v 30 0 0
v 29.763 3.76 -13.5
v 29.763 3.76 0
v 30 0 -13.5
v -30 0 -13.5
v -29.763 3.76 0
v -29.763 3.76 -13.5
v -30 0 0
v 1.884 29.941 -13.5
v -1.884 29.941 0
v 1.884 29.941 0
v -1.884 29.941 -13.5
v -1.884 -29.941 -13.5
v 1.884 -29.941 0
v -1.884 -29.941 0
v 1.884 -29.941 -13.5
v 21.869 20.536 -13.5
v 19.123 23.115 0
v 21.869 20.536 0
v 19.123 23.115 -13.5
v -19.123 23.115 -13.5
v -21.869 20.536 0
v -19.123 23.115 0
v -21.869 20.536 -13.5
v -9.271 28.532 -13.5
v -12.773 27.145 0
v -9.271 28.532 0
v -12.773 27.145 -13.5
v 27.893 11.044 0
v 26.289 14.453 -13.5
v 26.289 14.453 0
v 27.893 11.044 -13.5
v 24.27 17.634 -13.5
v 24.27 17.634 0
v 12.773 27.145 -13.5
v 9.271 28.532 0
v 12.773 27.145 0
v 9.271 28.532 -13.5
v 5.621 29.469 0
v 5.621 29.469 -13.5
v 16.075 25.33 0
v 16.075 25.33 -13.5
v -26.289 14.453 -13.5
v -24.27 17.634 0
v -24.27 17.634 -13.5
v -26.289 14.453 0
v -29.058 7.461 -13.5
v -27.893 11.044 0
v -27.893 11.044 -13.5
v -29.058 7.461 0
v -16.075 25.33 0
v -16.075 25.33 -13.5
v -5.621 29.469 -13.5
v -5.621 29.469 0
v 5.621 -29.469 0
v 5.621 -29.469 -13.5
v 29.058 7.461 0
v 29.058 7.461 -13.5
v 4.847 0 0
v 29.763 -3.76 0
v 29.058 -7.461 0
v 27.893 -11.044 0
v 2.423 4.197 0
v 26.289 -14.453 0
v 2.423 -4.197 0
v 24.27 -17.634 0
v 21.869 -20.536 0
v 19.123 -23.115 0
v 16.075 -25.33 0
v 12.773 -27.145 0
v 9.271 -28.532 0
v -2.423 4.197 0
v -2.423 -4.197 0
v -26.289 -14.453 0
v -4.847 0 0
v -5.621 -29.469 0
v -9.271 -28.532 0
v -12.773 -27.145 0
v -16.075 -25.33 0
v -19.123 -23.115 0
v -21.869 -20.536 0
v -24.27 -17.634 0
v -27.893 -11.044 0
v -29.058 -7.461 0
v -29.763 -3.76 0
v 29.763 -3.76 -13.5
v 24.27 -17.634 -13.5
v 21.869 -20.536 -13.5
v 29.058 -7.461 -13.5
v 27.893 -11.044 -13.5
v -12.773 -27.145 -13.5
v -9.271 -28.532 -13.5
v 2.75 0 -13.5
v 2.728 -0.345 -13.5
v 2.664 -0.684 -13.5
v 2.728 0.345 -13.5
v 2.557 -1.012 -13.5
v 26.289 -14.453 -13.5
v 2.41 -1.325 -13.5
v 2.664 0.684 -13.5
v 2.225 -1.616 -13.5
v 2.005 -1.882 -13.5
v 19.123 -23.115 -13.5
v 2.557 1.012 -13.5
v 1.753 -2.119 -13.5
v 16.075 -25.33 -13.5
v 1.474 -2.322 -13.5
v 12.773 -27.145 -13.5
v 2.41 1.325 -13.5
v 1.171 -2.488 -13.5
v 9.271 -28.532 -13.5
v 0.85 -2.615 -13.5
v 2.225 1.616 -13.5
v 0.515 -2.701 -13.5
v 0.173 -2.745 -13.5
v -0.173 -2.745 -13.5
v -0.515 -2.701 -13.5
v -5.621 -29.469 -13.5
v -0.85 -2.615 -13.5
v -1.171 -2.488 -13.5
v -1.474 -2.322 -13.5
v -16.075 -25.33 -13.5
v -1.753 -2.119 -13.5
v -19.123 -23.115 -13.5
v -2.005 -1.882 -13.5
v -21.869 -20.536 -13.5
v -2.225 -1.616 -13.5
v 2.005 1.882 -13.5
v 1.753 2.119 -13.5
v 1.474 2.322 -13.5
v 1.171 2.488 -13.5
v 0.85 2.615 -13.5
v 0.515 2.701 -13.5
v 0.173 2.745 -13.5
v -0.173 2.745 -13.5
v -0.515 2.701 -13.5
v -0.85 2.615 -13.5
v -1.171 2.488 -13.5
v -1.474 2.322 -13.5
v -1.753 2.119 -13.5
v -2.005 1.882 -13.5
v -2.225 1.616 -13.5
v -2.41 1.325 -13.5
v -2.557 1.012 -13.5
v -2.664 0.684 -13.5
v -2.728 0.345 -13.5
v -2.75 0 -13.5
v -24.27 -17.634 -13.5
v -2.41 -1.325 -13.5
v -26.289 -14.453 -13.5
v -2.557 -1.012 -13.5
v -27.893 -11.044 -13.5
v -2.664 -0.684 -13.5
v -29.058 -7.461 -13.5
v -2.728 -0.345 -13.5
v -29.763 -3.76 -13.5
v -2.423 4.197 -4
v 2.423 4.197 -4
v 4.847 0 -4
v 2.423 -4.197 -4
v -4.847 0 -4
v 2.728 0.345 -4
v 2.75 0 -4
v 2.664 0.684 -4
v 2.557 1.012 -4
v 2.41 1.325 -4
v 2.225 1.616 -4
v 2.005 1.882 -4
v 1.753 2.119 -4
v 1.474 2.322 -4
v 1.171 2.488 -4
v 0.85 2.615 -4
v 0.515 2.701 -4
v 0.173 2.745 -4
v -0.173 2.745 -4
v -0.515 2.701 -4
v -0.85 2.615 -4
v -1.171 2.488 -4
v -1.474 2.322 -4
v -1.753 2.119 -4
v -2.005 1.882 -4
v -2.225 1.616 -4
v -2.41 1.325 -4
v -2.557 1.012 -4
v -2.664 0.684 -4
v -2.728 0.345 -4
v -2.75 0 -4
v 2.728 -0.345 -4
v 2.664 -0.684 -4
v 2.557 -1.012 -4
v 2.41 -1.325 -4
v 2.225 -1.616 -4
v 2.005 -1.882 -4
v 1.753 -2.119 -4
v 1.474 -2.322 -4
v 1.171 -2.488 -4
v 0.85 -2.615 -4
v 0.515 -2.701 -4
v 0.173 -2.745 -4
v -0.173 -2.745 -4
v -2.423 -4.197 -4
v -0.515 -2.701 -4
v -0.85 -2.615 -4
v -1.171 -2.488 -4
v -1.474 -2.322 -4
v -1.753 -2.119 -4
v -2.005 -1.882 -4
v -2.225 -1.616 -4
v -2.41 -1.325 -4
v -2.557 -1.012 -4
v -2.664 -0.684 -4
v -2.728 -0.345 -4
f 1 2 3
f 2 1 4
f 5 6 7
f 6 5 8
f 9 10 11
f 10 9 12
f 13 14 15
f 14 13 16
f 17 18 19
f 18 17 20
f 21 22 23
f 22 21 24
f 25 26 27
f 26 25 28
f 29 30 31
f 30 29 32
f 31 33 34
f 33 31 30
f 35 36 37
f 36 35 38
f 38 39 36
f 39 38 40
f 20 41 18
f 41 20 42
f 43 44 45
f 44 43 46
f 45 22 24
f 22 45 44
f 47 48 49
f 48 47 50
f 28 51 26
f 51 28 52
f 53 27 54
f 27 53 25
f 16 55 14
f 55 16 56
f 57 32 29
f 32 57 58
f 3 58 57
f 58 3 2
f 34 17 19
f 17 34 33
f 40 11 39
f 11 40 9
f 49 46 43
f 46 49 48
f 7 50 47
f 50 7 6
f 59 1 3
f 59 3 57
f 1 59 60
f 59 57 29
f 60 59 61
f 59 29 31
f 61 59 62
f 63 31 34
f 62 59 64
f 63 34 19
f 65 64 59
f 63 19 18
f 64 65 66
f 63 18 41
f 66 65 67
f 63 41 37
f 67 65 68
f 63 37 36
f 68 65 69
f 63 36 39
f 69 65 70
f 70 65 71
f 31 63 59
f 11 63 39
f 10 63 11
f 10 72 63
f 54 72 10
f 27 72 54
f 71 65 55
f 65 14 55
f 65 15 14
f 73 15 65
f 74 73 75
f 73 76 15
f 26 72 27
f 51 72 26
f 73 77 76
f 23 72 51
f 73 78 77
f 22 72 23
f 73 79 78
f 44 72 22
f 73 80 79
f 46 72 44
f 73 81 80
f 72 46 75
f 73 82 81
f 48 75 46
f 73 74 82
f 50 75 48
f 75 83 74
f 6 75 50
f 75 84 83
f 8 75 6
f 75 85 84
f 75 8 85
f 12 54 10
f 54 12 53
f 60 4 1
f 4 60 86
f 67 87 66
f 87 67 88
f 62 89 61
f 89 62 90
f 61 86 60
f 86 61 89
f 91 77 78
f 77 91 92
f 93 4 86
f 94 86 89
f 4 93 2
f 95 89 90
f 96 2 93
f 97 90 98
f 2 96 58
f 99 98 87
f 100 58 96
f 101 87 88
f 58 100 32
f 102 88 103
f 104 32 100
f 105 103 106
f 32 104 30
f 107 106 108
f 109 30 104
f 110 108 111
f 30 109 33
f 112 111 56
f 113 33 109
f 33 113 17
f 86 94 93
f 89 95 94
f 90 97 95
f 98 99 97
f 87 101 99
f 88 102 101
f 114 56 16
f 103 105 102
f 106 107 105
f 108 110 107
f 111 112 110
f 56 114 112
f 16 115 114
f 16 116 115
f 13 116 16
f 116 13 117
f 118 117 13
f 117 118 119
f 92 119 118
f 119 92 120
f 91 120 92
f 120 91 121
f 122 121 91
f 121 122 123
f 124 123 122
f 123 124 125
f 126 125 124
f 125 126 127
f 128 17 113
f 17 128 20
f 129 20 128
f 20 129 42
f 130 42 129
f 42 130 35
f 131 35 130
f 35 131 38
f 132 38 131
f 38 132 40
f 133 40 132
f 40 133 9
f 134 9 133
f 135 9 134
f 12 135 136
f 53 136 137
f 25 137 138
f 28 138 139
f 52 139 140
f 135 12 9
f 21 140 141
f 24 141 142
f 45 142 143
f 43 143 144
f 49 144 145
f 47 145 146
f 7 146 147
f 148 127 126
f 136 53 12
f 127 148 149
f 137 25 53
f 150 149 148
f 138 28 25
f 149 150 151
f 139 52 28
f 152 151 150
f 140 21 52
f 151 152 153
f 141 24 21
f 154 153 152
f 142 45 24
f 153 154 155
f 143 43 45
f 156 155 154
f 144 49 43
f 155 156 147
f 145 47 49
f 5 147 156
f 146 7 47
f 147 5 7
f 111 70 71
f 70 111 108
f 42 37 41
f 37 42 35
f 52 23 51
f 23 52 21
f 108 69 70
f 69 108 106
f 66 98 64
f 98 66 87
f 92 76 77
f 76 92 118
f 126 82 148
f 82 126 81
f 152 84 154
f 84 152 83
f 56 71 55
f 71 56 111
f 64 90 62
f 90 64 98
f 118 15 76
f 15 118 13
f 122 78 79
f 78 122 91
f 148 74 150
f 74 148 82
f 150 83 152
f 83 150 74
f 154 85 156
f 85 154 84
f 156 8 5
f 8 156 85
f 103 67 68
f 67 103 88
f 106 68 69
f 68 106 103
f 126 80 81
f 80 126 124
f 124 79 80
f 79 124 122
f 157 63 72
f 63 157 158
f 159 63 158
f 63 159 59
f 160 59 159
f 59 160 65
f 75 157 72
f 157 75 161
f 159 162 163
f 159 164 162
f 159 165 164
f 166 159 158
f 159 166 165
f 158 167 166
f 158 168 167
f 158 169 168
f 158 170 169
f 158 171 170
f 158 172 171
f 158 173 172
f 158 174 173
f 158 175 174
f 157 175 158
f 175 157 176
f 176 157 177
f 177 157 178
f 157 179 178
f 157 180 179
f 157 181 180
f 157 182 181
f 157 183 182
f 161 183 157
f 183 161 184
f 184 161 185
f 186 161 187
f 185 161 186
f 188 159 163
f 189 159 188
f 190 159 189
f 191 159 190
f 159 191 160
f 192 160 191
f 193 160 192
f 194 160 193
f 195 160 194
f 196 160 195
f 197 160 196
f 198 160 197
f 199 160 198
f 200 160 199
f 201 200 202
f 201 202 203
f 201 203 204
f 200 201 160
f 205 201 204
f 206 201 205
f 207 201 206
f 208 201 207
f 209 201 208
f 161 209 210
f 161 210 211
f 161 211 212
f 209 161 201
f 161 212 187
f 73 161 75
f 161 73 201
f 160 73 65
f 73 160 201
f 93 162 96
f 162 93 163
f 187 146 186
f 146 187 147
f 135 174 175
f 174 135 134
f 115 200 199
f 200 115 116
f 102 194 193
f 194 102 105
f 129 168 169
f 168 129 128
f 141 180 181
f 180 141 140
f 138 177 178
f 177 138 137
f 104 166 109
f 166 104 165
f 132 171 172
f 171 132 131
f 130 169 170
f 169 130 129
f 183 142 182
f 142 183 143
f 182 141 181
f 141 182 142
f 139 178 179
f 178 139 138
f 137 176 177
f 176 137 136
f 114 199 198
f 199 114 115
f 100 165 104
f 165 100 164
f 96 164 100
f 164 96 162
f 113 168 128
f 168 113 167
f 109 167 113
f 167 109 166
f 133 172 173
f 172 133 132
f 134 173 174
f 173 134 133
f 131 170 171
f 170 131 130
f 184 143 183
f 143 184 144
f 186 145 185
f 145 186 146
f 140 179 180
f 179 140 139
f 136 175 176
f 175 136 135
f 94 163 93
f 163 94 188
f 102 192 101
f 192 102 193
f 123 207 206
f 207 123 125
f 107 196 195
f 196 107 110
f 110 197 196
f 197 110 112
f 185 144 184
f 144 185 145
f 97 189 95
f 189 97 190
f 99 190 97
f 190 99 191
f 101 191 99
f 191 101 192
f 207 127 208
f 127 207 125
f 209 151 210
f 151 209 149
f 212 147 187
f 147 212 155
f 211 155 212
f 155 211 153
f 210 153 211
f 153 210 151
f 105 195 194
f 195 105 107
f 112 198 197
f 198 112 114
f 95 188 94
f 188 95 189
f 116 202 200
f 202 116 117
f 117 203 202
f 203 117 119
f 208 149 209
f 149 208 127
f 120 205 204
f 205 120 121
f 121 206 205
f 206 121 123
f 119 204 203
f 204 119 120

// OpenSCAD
$fn = 50;


difference() {
	union() {
		translate(v = [0, 0, -13.5000000000]) {
			cylinder(h = 13.5000000000, r = 30.0000000000);
		}
		translate(v = [0, 0, -12.0000000000]) {
			cylinder(h = 12, r = 2.8750000000);
		}
	}
	union() {
		translate(v = [0, 0, 0]) {
			rotate(a = [0, 0, 0]) {
				difference() {
					union() {
						translate(v = [0, 0, -4]) {
							linear_extrude(height = 4) {
								polygon(points = [[4.8468000000, 0.0000000000], [2.4234000000, 4.1974519271], [-2.4234000000, 4.1974519271], [-4.8468000000, 0.0000000000], [-2.4234000000, -4.1974519271], [2.4234000000, -4.1974519271]]);
							}
						}
					}
					union();
				}
			}
		}
		#translate(v = [0, 0, -100.0000000000]) {
			cylinder(h = 200, r = 2.7500000000);
		}
	}
}
